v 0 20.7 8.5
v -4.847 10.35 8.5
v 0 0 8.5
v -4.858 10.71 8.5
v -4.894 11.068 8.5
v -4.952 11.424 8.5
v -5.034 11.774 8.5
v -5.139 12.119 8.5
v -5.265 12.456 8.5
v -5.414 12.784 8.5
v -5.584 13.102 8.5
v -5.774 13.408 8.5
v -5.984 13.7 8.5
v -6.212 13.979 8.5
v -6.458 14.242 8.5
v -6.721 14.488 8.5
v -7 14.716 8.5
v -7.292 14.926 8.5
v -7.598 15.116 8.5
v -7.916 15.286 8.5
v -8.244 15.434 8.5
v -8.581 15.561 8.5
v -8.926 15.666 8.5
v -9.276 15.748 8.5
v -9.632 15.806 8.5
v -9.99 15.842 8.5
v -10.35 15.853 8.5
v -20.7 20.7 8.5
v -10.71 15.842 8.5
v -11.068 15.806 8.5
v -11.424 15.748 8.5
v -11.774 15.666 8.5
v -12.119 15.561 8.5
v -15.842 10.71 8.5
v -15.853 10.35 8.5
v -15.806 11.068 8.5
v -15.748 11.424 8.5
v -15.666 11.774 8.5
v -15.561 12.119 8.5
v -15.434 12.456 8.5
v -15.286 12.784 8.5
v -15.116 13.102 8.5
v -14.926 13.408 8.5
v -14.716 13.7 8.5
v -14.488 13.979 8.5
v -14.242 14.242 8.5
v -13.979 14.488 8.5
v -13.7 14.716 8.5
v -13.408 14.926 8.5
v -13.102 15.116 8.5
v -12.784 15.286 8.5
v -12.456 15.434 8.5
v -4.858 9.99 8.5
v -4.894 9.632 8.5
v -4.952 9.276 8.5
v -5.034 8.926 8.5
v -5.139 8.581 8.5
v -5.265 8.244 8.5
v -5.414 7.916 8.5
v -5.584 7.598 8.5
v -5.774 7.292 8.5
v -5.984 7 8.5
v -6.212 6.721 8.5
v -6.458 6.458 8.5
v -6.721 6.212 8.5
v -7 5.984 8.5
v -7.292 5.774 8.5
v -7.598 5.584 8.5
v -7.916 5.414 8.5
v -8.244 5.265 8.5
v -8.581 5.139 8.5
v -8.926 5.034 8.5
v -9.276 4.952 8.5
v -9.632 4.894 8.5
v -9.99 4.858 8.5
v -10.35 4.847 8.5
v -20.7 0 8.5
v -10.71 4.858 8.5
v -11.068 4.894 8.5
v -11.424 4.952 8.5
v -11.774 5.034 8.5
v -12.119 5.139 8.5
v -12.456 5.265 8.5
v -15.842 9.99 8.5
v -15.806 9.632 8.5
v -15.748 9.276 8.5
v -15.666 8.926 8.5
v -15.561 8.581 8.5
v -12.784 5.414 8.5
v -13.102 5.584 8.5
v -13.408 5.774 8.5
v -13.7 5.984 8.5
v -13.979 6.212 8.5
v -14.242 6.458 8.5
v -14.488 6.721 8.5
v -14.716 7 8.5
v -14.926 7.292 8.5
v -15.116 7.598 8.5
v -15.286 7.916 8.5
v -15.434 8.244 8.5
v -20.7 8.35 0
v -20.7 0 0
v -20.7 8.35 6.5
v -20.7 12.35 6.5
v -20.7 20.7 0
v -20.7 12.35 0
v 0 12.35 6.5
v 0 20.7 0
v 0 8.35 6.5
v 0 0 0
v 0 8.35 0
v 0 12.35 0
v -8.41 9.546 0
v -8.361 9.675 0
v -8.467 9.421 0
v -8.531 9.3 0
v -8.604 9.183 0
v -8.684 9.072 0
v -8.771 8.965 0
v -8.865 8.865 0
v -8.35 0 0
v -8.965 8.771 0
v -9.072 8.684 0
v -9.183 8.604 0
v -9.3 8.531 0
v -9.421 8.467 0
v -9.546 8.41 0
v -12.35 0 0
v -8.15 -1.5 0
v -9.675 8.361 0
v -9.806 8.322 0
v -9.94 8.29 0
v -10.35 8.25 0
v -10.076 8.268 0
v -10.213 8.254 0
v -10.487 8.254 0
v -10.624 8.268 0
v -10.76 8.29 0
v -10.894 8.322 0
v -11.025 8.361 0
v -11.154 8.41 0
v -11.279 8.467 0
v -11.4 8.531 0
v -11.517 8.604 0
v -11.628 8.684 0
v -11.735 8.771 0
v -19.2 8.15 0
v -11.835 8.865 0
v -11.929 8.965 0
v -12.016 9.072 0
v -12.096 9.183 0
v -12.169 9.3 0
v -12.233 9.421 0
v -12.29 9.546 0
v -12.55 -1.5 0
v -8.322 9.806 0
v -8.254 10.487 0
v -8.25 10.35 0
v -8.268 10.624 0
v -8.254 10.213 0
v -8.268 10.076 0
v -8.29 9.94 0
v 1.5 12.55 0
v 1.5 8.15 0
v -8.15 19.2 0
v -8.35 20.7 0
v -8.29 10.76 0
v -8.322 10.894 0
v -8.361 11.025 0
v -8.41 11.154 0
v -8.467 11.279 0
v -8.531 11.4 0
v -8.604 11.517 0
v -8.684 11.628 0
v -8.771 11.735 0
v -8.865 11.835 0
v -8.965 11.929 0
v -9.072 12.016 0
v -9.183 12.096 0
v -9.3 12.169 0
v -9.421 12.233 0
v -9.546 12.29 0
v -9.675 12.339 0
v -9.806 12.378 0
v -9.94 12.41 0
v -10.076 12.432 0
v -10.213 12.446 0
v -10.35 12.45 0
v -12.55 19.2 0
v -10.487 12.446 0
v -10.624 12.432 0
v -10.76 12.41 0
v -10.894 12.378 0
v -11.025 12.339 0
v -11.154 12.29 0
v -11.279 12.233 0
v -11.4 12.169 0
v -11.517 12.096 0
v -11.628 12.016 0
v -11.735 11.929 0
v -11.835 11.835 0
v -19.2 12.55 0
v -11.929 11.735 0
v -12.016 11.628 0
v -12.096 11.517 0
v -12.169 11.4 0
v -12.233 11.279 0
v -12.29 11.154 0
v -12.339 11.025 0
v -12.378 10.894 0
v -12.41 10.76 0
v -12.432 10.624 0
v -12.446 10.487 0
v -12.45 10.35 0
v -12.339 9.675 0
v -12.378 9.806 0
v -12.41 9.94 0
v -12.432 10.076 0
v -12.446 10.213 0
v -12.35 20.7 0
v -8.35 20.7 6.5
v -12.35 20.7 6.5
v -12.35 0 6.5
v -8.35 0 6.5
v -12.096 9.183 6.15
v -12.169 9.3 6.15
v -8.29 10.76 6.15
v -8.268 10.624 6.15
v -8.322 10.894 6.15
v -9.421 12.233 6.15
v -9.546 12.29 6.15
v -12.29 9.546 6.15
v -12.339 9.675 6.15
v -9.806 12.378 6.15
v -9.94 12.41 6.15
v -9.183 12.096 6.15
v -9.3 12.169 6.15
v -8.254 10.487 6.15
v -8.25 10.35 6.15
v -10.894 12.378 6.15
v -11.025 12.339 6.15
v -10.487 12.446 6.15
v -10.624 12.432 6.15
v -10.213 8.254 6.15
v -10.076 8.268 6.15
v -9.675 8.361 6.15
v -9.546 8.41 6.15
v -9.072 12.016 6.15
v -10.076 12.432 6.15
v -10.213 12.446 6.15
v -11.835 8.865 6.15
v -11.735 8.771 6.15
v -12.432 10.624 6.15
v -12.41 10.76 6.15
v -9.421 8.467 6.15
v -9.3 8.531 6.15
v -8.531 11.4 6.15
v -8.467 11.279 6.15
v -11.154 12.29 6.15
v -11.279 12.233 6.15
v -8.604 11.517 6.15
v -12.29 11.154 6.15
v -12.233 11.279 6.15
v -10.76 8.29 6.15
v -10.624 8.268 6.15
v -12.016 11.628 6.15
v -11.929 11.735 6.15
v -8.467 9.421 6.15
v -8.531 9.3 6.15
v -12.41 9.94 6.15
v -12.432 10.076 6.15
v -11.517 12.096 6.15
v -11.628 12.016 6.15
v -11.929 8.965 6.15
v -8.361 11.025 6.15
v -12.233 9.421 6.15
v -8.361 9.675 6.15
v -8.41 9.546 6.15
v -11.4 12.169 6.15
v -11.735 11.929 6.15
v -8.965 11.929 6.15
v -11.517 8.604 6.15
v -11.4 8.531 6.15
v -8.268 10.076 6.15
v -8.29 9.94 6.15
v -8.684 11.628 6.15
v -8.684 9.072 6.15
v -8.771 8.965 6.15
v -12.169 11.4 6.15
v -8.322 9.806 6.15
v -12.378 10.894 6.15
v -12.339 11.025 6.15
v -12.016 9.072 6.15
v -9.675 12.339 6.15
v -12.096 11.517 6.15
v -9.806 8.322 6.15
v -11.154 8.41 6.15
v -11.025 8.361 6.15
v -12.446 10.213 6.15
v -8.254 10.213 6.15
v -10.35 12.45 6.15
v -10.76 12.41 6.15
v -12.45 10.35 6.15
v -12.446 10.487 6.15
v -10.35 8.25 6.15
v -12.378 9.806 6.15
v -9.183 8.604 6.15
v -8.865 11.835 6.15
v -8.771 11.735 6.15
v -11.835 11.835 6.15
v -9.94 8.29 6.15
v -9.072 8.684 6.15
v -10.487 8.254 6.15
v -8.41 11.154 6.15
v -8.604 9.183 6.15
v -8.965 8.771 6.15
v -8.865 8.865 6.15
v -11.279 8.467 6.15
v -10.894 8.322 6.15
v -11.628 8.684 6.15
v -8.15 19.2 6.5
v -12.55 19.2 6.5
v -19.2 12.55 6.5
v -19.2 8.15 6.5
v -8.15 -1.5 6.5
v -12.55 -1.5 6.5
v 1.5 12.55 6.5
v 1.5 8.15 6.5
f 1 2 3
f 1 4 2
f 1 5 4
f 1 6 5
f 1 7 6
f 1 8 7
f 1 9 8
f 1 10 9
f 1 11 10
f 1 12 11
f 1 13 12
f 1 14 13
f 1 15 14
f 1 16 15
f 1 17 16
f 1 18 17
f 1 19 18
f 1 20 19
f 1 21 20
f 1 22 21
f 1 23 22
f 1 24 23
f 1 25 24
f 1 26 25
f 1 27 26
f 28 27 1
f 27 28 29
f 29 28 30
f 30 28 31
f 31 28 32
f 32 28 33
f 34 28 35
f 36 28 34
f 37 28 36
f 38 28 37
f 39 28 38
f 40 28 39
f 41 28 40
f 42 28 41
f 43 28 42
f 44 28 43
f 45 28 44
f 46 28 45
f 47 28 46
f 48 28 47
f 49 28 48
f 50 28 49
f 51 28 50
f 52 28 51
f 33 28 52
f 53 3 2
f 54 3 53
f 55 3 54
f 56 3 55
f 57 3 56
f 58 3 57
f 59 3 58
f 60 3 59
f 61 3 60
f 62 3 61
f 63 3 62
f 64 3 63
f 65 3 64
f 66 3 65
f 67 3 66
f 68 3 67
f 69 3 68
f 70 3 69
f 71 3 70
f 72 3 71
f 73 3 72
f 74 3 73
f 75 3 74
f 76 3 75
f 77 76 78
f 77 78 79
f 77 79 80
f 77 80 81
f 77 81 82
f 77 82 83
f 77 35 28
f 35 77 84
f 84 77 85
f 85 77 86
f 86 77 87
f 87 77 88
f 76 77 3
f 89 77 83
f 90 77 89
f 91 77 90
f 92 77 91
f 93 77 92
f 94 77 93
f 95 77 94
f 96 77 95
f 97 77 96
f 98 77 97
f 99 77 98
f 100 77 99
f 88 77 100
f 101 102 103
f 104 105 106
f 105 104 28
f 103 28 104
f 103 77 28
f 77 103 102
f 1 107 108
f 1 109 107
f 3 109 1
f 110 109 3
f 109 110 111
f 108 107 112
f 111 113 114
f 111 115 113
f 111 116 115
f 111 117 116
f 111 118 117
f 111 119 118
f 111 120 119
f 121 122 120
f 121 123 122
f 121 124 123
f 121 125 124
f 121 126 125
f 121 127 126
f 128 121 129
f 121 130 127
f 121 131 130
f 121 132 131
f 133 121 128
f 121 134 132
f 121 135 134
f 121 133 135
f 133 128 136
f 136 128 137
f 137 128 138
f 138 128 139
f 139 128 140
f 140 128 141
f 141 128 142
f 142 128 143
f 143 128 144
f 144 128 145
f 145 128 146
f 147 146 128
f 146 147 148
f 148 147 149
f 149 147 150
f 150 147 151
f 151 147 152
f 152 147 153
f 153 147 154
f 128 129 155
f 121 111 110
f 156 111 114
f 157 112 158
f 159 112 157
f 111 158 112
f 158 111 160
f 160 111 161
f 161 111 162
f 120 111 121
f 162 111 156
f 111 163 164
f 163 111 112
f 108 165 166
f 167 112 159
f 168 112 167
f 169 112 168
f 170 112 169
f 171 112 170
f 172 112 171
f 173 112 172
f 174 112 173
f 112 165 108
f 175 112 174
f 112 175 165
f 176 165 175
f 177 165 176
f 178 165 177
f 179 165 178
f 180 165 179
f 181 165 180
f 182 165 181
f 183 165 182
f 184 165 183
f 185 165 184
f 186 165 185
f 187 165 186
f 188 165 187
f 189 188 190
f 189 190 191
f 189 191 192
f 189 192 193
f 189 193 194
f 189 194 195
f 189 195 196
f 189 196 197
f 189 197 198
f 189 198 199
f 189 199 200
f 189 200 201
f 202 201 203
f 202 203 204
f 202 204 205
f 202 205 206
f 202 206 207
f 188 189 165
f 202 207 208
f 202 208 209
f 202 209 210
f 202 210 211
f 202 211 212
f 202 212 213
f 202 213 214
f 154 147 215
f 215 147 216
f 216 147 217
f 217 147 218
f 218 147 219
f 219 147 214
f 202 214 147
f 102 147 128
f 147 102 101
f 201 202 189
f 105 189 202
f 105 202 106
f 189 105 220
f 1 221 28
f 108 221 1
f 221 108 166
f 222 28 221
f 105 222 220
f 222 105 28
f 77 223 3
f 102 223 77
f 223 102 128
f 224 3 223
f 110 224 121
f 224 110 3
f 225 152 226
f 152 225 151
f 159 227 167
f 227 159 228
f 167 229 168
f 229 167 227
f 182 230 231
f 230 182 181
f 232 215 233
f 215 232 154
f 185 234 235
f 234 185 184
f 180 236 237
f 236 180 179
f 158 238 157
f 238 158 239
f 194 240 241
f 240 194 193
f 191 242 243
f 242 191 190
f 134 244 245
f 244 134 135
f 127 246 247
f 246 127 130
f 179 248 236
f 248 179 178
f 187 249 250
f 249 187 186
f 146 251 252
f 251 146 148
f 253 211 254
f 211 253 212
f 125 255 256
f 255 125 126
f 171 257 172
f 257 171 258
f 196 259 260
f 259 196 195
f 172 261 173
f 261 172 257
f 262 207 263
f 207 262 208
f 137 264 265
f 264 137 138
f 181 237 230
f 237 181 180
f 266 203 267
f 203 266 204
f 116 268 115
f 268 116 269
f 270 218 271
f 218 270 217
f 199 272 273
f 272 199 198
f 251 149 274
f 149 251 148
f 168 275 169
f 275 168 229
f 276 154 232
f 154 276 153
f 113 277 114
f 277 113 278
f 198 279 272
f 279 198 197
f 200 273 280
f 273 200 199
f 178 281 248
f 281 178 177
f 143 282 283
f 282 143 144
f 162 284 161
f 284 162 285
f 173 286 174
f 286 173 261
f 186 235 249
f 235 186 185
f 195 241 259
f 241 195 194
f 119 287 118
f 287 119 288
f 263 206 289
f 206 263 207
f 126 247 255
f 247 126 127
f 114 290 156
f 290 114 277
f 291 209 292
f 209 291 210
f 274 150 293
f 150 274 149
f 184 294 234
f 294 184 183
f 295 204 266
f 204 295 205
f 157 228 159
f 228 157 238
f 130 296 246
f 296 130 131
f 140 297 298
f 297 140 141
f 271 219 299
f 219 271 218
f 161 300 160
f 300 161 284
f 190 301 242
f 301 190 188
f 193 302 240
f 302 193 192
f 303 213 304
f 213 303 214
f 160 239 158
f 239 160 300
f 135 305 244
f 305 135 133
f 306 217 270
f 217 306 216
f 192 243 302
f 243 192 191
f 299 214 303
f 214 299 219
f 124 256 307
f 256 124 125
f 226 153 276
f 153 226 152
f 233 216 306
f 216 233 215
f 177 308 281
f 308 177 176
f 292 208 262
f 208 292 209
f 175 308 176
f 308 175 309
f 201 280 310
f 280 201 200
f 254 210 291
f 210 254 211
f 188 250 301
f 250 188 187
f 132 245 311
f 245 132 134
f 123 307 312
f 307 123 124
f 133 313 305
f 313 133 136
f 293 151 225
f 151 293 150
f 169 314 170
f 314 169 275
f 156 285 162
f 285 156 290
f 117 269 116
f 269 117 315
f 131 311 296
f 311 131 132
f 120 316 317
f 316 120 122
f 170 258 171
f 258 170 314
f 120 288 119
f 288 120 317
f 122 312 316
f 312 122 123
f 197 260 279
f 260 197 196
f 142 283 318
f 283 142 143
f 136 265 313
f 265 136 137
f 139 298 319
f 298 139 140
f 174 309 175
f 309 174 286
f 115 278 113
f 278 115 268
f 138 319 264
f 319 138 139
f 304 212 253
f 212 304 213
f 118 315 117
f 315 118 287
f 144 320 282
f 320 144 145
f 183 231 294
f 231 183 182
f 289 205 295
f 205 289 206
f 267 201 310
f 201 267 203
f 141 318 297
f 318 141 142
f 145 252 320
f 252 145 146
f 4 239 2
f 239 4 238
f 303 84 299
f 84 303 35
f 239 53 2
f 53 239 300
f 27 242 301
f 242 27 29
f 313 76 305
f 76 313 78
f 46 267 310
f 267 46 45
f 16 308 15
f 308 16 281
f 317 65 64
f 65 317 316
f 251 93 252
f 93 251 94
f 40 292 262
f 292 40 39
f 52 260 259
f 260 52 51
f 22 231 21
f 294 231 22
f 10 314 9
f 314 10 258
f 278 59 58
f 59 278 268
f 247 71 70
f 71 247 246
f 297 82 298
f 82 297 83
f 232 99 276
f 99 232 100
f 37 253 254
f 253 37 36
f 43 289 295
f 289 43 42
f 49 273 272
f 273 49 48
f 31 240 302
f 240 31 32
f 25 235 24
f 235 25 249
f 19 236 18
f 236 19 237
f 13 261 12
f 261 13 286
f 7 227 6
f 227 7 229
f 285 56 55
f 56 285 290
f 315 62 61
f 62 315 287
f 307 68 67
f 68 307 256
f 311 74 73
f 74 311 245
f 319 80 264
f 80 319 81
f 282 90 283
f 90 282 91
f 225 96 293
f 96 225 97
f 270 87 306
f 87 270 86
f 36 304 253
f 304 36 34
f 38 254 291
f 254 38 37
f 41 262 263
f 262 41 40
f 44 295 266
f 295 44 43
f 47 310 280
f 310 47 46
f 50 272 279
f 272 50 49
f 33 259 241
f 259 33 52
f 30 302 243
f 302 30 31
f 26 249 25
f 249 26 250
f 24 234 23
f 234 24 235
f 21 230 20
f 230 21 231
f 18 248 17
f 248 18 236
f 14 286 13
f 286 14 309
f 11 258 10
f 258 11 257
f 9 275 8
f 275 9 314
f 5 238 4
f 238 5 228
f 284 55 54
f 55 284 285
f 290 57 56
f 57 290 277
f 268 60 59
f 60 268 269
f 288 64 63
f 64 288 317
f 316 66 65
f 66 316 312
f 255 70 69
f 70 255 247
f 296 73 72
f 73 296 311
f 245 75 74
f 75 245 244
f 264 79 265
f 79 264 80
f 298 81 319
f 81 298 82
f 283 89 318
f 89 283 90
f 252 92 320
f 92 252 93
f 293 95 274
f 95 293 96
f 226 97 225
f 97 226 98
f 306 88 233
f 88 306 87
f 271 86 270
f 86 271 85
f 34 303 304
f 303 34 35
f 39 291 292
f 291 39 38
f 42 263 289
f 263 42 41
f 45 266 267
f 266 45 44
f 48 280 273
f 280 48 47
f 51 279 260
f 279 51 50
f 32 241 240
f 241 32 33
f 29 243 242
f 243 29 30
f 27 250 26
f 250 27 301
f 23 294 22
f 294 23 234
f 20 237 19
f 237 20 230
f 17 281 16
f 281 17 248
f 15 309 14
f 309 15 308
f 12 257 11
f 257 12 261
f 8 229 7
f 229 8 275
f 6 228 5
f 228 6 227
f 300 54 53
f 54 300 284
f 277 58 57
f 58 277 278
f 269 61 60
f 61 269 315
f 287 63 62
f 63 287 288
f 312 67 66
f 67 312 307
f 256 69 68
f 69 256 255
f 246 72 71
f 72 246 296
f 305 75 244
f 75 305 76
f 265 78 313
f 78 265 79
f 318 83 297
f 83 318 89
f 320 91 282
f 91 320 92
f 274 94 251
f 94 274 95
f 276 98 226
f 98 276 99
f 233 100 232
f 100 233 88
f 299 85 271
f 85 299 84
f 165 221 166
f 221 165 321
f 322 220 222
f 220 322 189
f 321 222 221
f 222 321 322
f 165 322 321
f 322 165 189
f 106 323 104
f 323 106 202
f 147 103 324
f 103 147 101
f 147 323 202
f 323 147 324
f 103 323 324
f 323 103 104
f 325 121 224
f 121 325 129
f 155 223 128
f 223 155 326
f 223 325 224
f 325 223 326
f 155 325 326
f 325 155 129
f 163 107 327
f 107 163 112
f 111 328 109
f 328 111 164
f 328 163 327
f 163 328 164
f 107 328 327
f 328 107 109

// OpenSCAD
// by MegaSaturnv

/////////////////////////////
// Customizable Parameters //
/////////////////////////////
/* [Basic] */
//Thickness / height of the mount (Z axis)
SCREW_MOUNT_THICKNESS = 8.5;
//SCREW_MOUNT_THICKNESS = 13;

//Diameter of the screw hole
SCREW_HOLE_DIAMETER = 4.2;

//Distance between the outside of the screw hole and the edge of the mounting plate
SCREW_HOLE_MARGIN = 8.25;

//Enable countersinking on the screw hole
COUNTERSINKING = true;

//Adjust the depth of the countersinking
COUNTERSINKING_Z_ADJUSTMENT = 0.5;
//COUNTERSINKING_Z_ADJUSTMENT = 4;

/* [Advanced] */
//Use $fn = 24 if it's a preview. $fn = 96 for the render. Increase 96 to produce a smoother curve.
$fn = $preview ? 24 : 96;

//Various Breadboard Trapezium Connector Dimensions
TRAPEZIUM_LARGER_WIDTH = 4.4;

//Various Breadboard Trapezium Connector Dimensions
TRAPEZIUM_SMALLER_WIDTH = 4.0;

//Various Breadboard Trapezium Connector Dimensions
TRAPEZIUM_HEIGHT = 1.5;

//Various Breadboard Trapezium Connector Dimensions
TRAPEZIUM_EXTRUDE_HEIGHT = 6.5;


//////////////////
// Calculations //
//////////////////
mountWidth = SCREW_HOLE_DIAMETER+SCREW_HOLE_MARGIN*2;


/////////////
// Modules //
/////////////
module mountHole(Arg_baseHeight, Arg_screwDiameter, Arg_screwHoleMargin, Arg_counterSinking=true, Arg_invert=false) {
	difference() {
		if (Arg_invert) cube([Arg_baseHeight, Arg_screwDiameter+Arg_screwHoleMargin, Arg_screwDiameter+Arg_screwHoleMargin]);
		difference() {
			cube([Arg_baseHeight, Arg_screwDiameter+Arg_screwHoleMargin, Arg_screwDiameter+Arg_screwHoleMargin]);
			translate([-0.1, (Arg_screwDiameter+Arg_screwHoleMargin/2)-(Arg_screwDiameter/2), (Arg_screwDiameter+Arg_screwHoleMargin/2)-(Arg_screwDiameter/2)]) rotate([0, 90, 0]) cylinder(d=Arg_screwDiameter, h=Arg_baseHeight+0.2);
			if (Arg_counterSinking) {
				//translate([-0.1, (Arg_screwDiameter+Arg_screwHoleMargin/2)-(Arg_screwDiameter/2), (Arg_screwDiameter+Arg_screwHoleMargin/2)-(Arg_screwDiameter/2)]) rotate([0, 90, 0]) cylinder(d1=0, d2=Arg_screwDiameter*2, h=Arg_baseHeight+0.2);
				//translate([Arg_screwDiameter/2, (Arg_screwDiameter+Arg_screwHoleMargin/2)-(Arg_screwDiameter/2), (Arg_screwDiameter+Arg_screwHoleMargin/2)-(Arg_screwDiameter/2)]) rotate([0, 90, 0]) cylinder(d1=0, d2=Arg_screwDiameter*4, h=Arg_baseHeight+0.2);
				translate([Arg_screwDiameter/1 + COUNTERSINKING_Z_ADJUSTMENT, (Arg_screwDiameter+Arg_screwHoleMargin/2)-(Arg_screwDiameter/2), (Arg_screwDiameter+Arg_screwHoleMargin/2)-(Arg_screwDiameter/2)]) rotate([0, 90, 0]) cylinder(d1=0, d2=Arg_screwDiameter*6, h=Arg_baseHeight+0.2);
			}
		}
	}
}

module trapezium(Arg_largerWidth, Arg_smallerWidth, Arg_height) {
	points=[[0,0],[Arg_largerWidth,0],[(Arg_largerWidth+Arg_smallerWidth)/2,Arg_height],[(Arg_largerWidth-Arg_smallerWidth)/2,Arg_height]];
	path=[[3,0,1,2]];
	translate([-Arg_largerWidth/2, 0, 0]) polygon(points,path);
}


////////////////
// Main Model //
////////////////
union() {
	difference() {
		rotate([0, 270, 0]) mountHole(SCREW_MOUNT_THICKNESS, SCREW_HOLE_DIAMETER, SCREW_HOLE_MARGIN*2, COUNTERSINKING);
		translate([-mountWidth/2, mountWidth-TRAPEZIUM_HEIGHT, 0]) linear_extrude(TRAPEZIUM_EXTRUDE_HEIGHT) trapezium(TRAPEZIUM_LARGER_WIDTH, TRAPEZIUM_SMALLER_WIDTH, TRAPEZIUM_HEIGHT);
		translate([-mountWidth+TRAPEZIUM_HEIGHT, mountWidth/2, 0]) rotate([0, 0, 90]) linear_extrude(TRAPEZIUM_EXTRUDE_HEIGHT) trapezium(TRAPEZIUM_LARGER_WIDTH, TRAPEZIUM_SMALLER_WIDTH, TRAPEZIUM_HEIGHT);
	}
	translate([-mountWidth/2, -TRAPEZIUM_HEIGHT, 0]) linear_extrude(TRAPEZIUM_EXTRUDE_HEIGHT) trapezium(TRAPEZIUM_LARGER_WIDTH, TRAPEZIUM_SMALLER_WIDTH, TRAPEZIUM_HEIGHT);
	translate([TRAPEZIUM_HEIGHT, mountWidth/2, 0]) rotate([0, 0, 90]) linear_extrude(TRAPEZIUM_EXTRUDE_HEIGHT) trapezium(TRAPEZIUM_LARGER_WIDTH, TRAPEZIUM_SMALLER_WIDTH, TRAPEZIUM_HEIGHT);
}
